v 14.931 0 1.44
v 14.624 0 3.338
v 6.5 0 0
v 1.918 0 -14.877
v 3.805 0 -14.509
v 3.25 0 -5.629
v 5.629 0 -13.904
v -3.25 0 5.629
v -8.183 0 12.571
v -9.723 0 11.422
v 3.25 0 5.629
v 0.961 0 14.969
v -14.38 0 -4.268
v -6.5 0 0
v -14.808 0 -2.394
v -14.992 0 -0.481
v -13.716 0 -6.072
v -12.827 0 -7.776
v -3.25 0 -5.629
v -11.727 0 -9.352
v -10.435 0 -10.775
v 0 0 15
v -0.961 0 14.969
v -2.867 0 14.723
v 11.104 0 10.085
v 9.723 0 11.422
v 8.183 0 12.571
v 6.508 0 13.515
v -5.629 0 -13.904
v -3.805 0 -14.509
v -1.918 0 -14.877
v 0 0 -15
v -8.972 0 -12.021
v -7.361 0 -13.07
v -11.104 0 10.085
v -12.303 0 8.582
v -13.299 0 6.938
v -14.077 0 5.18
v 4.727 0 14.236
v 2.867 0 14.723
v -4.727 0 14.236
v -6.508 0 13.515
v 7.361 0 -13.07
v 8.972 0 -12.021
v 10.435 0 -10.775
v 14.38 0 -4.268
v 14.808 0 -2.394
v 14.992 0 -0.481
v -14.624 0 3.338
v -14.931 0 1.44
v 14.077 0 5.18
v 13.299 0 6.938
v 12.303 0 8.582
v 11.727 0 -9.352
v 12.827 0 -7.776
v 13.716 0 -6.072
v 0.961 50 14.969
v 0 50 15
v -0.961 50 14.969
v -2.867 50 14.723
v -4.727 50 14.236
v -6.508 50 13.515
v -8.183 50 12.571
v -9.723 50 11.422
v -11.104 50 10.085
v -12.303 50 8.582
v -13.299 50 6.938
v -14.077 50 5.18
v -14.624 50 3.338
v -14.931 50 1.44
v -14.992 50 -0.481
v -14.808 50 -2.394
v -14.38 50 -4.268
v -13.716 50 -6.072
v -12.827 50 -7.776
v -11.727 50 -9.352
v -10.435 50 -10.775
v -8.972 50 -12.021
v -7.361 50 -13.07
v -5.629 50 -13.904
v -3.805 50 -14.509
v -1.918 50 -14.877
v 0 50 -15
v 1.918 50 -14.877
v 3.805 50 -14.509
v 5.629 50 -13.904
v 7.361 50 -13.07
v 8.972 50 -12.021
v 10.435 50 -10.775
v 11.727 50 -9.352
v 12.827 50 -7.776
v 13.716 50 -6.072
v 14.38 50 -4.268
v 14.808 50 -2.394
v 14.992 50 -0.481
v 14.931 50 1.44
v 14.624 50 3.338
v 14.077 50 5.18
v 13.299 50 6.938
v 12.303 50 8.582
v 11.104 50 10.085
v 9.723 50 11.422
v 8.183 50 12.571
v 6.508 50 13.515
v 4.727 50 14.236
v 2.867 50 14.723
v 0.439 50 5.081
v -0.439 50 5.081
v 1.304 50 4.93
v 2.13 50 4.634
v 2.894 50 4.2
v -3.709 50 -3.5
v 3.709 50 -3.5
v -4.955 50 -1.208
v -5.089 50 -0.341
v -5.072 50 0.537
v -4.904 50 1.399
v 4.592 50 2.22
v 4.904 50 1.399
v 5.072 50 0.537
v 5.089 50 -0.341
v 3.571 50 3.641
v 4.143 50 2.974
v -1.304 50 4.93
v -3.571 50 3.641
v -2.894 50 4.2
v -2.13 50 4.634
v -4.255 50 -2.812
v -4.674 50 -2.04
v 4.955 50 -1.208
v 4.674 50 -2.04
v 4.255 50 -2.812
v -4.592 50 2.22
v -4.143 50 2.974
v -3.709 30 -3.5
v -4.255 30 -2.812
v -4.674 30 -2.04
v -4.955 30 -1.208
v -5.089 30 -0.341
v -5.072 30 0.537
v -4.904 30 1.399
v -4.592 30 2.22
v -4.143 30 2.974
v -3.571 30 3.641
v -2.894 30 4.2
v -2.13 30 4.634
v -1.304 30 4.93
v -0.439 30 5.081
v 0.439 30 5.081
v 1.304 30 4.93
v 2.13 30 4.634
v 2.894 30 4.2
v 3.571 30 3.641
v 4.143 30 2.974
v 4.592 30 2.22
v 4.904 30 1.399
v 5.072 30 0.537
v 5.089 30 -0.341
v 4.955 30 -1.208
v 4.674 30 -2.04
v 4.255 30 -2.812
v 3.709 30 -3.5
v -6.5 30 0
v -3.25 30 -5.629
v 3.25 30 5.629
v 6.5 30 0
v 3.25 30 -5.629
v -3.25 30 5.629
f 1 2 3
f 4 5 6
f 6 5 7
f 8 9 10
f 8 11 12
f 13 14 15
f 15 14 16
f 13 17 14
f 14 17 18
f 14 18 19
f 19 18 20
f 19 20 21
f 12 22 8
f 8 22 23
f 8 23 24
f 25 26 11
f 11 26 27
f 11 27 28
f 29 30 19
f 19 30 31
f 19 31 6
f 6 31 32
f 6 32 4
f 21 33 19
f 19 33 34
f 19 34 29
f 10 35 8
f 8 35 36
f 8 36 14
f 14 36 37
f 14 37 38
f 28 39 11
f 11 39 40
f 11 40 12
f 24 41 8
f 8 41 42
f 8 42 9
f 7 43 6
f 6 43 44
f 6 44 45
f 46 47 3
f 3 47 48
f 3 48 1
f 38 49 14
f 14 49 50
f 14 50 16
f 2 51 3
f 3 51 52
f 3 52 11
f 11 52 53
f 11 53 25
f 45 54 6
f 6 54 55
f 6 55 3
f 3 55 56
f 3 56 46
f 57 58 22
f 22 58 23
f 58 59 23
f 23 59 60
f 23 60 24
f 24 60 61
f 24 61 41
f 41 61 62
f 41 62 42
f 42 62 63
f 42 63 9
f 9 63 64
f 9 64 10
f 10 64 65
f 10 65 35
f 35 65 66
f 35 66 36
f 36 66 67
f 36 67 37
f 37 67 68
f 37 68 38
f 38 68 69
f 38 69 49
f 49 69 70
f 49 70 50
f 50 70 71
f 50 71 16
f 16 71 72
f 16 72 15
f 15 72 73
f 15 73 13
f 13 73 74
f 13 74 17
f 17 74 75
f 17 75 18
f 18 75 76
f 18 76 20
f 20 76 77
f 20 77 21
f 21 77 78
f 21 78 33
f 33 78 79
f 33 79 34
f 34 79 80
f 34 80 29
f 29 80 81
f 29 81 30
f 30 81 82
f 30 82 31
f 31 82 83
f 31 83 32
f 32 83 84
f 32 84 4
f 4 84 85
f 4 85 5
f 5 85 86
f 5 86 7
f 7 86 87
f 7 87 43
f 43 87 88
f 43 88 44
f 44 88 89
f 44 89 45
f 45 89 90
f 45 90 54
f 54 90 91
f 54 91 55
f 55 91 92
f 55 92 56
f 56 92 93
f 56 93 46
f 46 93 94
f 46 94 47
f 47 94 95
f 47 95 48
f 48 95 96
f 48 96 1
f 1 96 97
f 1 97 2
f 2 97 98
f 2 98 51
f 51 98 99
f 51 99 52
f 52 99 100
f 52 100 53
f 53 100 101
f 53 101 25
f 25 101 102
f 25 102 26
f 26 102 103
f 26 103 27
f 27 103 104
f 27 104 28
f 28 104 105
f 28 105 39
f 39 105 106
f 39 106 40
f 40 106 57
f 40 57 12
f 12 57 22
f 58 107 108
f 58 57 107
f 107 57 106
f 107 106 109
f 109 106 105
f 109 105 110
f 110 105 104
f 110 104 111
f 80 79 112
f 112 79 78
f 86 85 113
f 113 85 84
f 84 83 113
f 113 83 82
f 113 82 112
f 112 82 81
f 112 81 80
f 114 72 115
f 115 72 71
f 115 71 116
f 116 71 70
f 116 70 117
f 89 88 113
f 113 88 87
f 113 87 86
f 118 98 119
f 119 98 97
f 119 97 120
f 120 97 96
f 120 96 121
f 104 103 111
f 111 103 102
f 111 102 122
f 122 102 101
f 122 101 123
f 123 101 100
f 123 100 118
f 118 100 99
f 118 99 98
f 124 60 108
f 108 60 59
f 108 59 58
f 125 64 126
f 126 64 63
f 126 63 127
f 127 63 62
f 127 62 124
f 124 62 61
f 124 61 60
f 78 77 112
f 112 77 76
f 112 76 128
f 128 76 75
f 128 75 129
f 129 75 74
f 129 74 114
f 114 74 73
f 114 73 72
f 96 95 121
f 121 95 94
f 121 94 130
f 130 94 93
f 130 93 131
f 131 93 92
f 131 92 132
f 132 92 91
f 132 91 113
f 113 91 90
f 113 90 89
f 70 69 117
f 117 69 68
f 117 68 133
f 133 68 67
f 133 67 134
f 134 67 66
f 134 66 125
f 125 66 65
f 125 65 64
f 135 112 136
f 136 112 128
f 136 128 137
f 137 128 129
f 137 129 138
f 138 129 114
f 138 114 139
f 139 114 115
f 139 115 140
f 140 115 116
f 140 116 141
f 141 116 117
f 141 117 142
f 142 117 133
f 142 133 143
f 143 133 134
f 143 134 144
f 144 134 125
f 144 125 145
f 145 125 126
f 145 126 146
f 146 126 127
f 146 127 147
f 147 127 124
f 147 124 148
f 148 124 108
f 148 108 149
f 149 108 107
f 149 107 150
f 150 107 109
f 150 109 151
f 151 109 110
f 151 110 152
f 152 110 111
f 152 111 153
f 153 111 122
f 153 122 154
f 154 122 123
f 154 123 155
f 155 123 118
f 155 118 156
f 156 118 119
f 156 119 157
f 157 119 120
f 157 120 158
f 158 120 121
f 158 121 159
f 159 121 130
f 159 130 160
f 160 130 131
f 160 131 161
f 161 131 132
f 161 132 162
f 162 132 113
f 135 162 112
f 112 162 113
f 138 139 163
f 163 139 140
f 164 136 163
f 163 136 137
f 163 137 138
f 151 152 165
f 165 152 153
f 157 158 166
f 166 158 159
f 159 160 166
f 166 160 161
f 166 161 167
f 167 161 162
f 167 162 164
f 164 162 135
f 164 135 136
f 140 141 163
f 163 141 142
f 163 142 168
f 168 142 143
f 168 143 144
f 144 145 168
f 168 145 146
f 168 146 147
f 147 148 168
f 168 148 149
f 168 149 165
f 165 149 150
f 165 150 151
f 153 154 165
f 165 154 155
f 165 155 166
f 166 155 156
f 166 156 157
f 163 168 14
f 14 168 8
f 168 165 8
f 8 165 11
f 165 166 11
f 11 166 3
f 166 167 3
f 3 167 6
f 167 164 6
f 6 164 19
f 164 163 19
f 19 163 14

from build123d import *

# Parameters (mm, degrees)
SKETCH1_R           = 15
BOSS_EXTRUDE1_DEPTH = 50
CUT_EXTRUDE1_DEPTH  = 20
CUT_EXTRUDE2_DEPTH  = 30


with BuildPart() as part:
    # Sketch1 → Boss-Extrude1 (new body)
    with BuildSketch(Plane(origin=(0, 0, 0), x_dir=(1, 0, 0), z_dir=(0, 1, 0))):
        Circle(SKETCH1_R)
    extrude(amount=BOSS_EXTRUDE1_DEPTH)

    # Sketch2 → Cut-Extrude1 (cut)
    with BuildSketch(Plane(origin=(0, 50, 0), x_dir=(1, 0, 0), z_dir=(0, 1, 0))):
        with BuildLine():
            Line((-3.709447398, 3.5), (3.709447398, 3.5))
            ThreePointArc((3.709447398, 3.5), (0, -5.1), (-3.709447398, 3.5))
        make_face()
    extrude(amount=-CUT_EXTRUDE1_DEPTH, mode=Mode.SUBTRACT)

    # Sketch3 → Cut-Extrude2 (cut)
    with BuildSketch(Plane.XZ):
        Polygon((-6.5, 0), (-3.25, 5.629165125), (3.25, 5.629165125), (6.5, 0), (3.25, -5.629165125), (-3.25, -5.629165125), align=None)
    extrude(amount=-CUT_EXTRUDE2_DEPTH, mode=Mode.SUBTRACT)


solid = part.part
